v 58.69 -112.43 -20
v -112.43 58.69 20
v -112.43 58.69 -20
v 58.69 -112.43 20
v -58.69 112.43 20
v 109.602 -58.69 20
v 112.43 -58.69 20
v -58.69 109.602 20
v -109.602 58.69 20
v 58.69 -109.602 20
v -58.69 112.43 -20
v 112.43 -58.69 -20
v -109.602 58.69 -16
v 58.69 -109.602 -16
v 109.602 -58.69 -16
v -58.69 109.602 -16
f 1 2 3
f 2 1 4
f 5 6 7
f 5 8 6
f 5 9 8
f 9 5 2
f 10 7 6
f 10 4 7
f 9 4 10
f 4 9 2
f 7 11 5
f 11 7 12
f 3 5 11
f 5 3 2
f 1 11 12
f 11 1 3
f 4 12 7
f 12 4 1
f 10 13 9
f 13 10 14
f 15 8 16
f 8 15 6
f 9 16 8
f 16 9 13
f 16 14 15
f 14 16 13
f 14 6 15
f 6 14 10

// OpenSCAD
wallThickness = 4;

width = 76;
depth = 242;
height = 40;

rotate([0, 0, 45]) {
    difference() { 
        cube([width, depth, height], center = true);
        translate([0, 0, wallThickness]){
            cube([width - wallThickness, depth - wallThickness, height], center = true);
        }
    }
}
